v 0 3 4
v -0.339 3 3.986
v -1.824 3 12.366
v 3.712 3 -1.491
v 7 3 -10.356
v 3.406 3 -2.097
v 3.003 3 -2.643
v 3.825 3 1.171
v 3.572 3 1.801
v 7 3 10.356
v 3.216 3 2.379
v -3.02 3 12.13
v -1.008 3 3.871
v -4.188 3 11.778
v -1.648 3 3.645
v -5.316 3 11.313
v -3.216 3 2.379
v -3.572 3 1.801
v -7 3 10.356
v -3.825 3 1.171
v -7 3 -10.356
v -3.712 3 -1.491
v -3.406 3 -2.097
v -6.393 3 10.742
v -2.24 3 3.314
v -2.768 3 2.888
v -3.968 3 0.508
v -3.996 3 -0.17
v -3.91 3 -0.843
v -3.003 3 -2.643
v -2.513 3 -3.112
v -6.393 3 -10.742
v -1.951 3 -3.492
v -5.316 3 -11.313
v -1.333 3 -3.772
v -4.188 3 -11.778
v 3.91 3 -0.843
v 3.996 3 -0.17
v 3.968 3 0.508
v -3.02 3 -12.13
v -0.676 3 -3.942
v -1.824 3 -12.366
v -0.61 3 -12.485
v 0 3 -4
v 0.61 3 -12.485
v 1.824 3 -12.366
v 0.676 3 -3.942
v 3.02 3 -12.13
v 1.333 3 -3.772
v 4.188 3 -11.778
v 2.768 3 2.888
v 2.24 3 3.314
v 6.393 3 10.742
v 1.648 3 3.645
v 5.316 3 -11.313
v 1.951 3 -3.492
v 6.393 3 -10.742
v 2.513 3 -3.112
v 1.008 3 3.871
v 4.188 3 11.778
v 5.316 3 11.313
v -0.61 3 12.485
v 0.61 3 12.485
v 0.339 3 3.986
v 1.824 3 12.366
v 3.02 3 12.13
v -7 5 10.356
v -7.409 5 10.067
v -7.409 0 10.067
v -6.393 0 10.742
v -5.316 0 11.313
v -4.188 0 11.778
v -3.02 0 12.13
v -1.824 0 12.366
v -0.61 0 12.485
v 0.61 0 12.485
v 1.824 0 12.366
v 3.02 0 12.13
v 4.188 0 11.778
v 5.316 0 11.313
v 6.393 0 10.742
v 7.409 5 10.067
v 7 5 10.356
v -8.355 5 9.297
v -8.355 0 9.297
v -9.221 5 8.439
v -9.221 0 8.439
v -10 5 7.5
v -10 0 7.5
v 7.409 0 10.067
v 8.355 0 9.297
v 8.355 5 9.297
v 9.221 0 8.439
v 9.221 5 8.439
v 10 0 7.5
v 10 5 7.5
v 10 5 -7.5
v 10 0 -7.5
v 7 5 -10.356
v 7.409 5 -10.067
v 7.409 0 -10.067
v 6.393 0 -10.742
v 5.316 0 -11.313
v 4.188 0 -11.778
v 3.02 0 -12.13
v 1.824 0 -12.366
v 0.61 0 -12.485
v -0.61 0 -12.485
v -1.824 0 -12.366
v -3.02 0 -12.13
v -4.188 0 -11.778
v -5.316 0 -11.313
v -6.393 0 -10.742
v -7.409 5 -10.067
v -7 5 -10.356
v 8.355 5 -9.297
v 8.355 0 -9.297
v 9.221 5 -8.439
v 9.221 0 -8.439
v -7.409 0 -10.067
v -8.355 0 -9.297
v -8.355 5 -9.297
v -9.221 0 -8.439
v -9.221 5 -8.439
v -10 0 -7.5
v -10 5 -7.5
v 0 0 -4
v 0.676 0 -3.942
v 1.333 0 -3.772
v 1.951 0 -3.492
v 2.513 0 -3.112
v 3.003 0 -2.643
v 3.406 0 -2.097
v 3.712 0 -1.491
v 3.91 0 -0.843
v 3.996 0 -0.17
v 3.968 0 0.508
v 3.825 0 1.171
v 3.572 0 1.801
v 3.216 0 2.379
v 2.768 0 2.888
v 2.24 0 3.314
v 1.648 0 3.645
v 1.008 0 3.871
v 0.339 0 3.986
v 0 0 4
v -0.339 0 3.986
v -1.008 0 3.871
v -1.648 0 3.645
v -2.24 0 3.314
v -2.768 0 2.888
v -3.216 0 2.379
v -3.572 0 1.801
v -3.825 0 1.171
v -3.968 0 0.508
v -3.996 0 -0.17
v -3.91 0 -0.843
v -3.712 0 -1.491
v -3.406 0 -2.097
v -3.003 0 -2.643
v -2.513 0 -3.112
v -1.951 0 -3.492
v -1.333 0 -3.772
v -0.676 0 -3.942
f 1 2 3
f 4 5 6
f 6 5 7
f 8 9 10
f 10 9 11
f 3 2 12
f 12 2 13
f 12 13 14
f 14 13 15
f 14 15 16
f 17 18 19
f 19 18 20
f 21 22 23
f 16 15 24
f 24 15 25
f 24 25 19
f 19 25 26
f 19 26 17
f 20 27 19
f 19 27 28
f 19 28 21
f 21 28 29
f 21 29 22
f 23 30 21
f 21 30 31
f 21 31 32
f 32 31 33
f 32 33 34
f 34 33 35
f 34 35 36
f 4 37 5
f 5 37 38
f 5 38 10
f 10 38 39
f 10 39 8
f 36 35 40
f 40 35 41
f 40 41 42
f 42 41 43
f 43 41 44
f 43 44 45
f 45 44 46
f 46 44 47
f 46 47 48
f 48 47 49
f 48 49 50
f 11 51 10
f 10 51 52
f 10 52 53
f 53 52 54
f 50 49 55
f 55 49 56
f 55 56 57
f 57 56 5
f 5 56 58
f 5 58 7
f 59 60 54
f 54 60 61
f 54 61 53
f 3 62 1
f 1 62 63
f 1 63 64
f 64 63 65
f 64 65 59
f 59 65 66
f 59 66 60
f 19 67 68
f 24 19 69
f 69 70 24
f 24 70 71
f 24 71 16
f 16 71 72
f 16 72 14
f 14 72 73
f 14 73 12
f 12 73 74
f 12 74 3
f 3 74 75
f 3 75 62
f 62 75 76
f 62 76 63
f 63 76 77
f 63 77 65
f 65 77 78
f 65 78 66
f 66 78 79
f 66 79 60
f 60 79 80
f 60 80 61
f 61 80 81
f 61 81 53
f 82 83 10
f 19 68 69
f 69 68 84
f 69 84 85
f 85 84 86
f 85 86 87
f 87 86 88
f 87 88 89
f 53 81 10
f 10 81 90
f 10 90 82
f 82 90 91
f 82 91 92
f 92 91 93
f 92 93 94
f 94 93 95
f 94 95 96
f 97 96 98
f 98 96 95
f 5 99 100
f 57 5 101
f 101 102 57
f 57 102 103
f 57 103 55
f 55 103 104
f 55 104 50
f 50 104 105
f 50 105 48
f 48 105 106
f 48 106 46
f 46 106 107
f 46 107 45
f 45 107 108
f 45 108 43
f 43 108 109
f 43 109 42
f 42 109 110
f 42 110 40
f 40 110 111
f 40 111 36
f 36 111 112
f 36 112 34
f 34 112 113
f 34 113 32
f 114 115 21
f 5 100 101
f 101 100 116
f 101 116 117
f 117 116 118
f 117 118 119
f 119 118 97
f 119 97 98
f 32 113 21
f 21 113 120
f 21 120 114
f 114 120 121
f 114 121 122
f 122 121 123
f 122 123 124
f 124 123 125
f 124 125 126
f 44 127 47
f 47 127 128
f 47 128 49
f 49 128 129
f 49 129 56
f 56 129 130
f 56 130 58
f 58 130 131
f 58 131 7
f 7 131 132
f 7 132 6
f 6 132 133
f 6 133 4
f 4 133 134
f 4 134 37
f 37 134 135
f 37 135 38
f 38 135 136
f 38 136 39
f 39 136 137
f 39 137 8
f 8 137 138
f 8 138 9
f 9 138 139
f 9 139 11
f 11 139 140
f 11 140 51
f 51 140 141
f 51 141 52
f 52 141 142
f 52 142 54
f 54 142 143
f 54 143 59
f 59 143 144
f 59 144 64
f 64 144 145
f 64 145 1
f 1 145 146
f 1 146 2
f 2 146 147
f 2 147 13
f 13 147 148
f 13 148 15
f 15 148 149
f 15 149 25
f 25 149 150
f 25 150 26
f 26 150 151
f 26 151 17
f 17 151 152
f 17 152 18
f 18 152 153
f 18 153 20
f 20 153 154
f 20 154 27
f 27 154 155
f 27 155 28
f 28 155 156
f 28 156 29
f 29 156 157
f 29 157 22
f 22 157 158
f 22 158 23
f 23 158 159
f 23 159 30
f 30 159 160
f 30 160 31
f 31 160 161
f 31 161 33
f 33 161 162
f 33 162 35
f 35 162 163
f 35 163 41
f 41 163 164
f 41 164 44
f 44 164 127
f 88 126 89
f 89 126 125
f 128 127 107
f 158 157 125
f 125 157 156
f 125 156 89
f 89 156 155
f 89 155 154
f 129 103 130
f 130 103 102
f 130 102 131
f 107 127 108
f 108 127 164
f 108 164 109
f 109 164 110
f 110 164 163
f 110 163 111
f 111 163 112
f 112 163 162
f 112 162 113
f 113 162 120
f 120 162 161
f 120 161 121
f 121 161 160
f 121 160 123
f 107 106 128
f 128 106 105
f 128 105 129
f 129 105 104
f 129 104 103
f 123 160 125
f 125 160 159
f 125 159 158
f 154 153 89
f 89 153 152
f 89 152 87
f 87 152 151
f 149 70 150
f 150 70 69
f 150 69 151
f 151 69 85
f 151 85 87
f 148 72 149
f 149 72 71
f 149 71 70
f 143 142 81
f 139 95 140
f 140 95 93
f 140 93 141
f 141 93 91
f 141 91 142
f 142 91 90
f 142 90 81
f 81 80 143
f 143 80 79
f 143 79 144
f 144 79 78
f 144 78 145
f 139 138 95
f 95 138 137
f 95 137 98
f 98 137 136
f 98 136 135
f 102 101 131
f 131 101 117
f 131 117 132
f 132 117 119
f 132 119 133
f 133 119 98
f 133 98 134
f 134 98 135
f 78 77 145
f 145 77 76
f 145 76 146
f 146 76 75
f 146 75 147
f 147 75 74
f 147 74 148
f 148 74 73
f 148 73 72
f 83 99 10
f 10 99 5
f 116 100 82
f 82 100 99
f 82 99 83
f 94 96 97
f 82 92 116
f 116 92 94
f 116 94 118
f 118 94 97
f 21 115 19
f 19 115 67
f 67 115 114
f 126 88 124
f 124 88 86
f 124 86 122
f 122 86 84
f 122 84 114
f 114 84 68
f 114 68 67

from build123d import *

# Parameters (mm, degrees)
SKETCH1_R           = 4
BOSS_EXTRUDE1_DEPTH = 3
BOSS_EXTRUDE2_DEPTH = 5


with BuildPart() as part:
    # Sketch1 → Boss-Extrude1 (new body)
    with BuildSketch(Plane(origin=(0, 0, 0), x_dir=(1, 0, 0), z_dir=(0, 1, 0))):
        with BuildLine():
            Line((10, -7.5), (10, 7.5))
            ThreePointArc((10, 7.5), (0, 12.5), (-10, 7.5))
            Line((-10, 7.5), (-10, -7.5))
            ThreePointArc((-10, -7.5), (0, -12.5), (10, -7.5))
        make_face()
        Circle(SKETCH1_R, mode=Mode.SUBTRACT)
    extrude(amount=BOSS_EXTRUDE1_DEPTH)

    # Sketch1<3> → Boss-Extrude2 (add)
    with BuildSketch(Plane(origin=(0, 0, 0), x_dir=(1, 0, 0), z_dir=(0, 1, 0))):
        with BuildLine():
            Line((-10, 7.5), (-10, -7.5))
            ThreePointArc((-10, -7.5), (-8.619130411, -9.053208876), (-7, -10.356157589))
            Line((-7, -10.356157589), (-7, 10.356157589))
            ThreePointArc((-7, 10.356157589), (-8.619130411, 9.053208876), (-10, 7.5))
        make_face()
        with BuildLine():
            Line((7, 10.356157589), (7, -10.356157589))
            ThreePointArc((7, -10.356157589), (8.619130411, -9.053208876), (10, -7.5))
            Line((10, -7.5), (10, 7.5))
            ThreePointArc((10, 7.5), (8.619130411, 9.053208876), (7, 10.356157589))
        make_face()
    extrude(amount=BOSS_EXTRUDE2_DEPTH)


solid = part.part
